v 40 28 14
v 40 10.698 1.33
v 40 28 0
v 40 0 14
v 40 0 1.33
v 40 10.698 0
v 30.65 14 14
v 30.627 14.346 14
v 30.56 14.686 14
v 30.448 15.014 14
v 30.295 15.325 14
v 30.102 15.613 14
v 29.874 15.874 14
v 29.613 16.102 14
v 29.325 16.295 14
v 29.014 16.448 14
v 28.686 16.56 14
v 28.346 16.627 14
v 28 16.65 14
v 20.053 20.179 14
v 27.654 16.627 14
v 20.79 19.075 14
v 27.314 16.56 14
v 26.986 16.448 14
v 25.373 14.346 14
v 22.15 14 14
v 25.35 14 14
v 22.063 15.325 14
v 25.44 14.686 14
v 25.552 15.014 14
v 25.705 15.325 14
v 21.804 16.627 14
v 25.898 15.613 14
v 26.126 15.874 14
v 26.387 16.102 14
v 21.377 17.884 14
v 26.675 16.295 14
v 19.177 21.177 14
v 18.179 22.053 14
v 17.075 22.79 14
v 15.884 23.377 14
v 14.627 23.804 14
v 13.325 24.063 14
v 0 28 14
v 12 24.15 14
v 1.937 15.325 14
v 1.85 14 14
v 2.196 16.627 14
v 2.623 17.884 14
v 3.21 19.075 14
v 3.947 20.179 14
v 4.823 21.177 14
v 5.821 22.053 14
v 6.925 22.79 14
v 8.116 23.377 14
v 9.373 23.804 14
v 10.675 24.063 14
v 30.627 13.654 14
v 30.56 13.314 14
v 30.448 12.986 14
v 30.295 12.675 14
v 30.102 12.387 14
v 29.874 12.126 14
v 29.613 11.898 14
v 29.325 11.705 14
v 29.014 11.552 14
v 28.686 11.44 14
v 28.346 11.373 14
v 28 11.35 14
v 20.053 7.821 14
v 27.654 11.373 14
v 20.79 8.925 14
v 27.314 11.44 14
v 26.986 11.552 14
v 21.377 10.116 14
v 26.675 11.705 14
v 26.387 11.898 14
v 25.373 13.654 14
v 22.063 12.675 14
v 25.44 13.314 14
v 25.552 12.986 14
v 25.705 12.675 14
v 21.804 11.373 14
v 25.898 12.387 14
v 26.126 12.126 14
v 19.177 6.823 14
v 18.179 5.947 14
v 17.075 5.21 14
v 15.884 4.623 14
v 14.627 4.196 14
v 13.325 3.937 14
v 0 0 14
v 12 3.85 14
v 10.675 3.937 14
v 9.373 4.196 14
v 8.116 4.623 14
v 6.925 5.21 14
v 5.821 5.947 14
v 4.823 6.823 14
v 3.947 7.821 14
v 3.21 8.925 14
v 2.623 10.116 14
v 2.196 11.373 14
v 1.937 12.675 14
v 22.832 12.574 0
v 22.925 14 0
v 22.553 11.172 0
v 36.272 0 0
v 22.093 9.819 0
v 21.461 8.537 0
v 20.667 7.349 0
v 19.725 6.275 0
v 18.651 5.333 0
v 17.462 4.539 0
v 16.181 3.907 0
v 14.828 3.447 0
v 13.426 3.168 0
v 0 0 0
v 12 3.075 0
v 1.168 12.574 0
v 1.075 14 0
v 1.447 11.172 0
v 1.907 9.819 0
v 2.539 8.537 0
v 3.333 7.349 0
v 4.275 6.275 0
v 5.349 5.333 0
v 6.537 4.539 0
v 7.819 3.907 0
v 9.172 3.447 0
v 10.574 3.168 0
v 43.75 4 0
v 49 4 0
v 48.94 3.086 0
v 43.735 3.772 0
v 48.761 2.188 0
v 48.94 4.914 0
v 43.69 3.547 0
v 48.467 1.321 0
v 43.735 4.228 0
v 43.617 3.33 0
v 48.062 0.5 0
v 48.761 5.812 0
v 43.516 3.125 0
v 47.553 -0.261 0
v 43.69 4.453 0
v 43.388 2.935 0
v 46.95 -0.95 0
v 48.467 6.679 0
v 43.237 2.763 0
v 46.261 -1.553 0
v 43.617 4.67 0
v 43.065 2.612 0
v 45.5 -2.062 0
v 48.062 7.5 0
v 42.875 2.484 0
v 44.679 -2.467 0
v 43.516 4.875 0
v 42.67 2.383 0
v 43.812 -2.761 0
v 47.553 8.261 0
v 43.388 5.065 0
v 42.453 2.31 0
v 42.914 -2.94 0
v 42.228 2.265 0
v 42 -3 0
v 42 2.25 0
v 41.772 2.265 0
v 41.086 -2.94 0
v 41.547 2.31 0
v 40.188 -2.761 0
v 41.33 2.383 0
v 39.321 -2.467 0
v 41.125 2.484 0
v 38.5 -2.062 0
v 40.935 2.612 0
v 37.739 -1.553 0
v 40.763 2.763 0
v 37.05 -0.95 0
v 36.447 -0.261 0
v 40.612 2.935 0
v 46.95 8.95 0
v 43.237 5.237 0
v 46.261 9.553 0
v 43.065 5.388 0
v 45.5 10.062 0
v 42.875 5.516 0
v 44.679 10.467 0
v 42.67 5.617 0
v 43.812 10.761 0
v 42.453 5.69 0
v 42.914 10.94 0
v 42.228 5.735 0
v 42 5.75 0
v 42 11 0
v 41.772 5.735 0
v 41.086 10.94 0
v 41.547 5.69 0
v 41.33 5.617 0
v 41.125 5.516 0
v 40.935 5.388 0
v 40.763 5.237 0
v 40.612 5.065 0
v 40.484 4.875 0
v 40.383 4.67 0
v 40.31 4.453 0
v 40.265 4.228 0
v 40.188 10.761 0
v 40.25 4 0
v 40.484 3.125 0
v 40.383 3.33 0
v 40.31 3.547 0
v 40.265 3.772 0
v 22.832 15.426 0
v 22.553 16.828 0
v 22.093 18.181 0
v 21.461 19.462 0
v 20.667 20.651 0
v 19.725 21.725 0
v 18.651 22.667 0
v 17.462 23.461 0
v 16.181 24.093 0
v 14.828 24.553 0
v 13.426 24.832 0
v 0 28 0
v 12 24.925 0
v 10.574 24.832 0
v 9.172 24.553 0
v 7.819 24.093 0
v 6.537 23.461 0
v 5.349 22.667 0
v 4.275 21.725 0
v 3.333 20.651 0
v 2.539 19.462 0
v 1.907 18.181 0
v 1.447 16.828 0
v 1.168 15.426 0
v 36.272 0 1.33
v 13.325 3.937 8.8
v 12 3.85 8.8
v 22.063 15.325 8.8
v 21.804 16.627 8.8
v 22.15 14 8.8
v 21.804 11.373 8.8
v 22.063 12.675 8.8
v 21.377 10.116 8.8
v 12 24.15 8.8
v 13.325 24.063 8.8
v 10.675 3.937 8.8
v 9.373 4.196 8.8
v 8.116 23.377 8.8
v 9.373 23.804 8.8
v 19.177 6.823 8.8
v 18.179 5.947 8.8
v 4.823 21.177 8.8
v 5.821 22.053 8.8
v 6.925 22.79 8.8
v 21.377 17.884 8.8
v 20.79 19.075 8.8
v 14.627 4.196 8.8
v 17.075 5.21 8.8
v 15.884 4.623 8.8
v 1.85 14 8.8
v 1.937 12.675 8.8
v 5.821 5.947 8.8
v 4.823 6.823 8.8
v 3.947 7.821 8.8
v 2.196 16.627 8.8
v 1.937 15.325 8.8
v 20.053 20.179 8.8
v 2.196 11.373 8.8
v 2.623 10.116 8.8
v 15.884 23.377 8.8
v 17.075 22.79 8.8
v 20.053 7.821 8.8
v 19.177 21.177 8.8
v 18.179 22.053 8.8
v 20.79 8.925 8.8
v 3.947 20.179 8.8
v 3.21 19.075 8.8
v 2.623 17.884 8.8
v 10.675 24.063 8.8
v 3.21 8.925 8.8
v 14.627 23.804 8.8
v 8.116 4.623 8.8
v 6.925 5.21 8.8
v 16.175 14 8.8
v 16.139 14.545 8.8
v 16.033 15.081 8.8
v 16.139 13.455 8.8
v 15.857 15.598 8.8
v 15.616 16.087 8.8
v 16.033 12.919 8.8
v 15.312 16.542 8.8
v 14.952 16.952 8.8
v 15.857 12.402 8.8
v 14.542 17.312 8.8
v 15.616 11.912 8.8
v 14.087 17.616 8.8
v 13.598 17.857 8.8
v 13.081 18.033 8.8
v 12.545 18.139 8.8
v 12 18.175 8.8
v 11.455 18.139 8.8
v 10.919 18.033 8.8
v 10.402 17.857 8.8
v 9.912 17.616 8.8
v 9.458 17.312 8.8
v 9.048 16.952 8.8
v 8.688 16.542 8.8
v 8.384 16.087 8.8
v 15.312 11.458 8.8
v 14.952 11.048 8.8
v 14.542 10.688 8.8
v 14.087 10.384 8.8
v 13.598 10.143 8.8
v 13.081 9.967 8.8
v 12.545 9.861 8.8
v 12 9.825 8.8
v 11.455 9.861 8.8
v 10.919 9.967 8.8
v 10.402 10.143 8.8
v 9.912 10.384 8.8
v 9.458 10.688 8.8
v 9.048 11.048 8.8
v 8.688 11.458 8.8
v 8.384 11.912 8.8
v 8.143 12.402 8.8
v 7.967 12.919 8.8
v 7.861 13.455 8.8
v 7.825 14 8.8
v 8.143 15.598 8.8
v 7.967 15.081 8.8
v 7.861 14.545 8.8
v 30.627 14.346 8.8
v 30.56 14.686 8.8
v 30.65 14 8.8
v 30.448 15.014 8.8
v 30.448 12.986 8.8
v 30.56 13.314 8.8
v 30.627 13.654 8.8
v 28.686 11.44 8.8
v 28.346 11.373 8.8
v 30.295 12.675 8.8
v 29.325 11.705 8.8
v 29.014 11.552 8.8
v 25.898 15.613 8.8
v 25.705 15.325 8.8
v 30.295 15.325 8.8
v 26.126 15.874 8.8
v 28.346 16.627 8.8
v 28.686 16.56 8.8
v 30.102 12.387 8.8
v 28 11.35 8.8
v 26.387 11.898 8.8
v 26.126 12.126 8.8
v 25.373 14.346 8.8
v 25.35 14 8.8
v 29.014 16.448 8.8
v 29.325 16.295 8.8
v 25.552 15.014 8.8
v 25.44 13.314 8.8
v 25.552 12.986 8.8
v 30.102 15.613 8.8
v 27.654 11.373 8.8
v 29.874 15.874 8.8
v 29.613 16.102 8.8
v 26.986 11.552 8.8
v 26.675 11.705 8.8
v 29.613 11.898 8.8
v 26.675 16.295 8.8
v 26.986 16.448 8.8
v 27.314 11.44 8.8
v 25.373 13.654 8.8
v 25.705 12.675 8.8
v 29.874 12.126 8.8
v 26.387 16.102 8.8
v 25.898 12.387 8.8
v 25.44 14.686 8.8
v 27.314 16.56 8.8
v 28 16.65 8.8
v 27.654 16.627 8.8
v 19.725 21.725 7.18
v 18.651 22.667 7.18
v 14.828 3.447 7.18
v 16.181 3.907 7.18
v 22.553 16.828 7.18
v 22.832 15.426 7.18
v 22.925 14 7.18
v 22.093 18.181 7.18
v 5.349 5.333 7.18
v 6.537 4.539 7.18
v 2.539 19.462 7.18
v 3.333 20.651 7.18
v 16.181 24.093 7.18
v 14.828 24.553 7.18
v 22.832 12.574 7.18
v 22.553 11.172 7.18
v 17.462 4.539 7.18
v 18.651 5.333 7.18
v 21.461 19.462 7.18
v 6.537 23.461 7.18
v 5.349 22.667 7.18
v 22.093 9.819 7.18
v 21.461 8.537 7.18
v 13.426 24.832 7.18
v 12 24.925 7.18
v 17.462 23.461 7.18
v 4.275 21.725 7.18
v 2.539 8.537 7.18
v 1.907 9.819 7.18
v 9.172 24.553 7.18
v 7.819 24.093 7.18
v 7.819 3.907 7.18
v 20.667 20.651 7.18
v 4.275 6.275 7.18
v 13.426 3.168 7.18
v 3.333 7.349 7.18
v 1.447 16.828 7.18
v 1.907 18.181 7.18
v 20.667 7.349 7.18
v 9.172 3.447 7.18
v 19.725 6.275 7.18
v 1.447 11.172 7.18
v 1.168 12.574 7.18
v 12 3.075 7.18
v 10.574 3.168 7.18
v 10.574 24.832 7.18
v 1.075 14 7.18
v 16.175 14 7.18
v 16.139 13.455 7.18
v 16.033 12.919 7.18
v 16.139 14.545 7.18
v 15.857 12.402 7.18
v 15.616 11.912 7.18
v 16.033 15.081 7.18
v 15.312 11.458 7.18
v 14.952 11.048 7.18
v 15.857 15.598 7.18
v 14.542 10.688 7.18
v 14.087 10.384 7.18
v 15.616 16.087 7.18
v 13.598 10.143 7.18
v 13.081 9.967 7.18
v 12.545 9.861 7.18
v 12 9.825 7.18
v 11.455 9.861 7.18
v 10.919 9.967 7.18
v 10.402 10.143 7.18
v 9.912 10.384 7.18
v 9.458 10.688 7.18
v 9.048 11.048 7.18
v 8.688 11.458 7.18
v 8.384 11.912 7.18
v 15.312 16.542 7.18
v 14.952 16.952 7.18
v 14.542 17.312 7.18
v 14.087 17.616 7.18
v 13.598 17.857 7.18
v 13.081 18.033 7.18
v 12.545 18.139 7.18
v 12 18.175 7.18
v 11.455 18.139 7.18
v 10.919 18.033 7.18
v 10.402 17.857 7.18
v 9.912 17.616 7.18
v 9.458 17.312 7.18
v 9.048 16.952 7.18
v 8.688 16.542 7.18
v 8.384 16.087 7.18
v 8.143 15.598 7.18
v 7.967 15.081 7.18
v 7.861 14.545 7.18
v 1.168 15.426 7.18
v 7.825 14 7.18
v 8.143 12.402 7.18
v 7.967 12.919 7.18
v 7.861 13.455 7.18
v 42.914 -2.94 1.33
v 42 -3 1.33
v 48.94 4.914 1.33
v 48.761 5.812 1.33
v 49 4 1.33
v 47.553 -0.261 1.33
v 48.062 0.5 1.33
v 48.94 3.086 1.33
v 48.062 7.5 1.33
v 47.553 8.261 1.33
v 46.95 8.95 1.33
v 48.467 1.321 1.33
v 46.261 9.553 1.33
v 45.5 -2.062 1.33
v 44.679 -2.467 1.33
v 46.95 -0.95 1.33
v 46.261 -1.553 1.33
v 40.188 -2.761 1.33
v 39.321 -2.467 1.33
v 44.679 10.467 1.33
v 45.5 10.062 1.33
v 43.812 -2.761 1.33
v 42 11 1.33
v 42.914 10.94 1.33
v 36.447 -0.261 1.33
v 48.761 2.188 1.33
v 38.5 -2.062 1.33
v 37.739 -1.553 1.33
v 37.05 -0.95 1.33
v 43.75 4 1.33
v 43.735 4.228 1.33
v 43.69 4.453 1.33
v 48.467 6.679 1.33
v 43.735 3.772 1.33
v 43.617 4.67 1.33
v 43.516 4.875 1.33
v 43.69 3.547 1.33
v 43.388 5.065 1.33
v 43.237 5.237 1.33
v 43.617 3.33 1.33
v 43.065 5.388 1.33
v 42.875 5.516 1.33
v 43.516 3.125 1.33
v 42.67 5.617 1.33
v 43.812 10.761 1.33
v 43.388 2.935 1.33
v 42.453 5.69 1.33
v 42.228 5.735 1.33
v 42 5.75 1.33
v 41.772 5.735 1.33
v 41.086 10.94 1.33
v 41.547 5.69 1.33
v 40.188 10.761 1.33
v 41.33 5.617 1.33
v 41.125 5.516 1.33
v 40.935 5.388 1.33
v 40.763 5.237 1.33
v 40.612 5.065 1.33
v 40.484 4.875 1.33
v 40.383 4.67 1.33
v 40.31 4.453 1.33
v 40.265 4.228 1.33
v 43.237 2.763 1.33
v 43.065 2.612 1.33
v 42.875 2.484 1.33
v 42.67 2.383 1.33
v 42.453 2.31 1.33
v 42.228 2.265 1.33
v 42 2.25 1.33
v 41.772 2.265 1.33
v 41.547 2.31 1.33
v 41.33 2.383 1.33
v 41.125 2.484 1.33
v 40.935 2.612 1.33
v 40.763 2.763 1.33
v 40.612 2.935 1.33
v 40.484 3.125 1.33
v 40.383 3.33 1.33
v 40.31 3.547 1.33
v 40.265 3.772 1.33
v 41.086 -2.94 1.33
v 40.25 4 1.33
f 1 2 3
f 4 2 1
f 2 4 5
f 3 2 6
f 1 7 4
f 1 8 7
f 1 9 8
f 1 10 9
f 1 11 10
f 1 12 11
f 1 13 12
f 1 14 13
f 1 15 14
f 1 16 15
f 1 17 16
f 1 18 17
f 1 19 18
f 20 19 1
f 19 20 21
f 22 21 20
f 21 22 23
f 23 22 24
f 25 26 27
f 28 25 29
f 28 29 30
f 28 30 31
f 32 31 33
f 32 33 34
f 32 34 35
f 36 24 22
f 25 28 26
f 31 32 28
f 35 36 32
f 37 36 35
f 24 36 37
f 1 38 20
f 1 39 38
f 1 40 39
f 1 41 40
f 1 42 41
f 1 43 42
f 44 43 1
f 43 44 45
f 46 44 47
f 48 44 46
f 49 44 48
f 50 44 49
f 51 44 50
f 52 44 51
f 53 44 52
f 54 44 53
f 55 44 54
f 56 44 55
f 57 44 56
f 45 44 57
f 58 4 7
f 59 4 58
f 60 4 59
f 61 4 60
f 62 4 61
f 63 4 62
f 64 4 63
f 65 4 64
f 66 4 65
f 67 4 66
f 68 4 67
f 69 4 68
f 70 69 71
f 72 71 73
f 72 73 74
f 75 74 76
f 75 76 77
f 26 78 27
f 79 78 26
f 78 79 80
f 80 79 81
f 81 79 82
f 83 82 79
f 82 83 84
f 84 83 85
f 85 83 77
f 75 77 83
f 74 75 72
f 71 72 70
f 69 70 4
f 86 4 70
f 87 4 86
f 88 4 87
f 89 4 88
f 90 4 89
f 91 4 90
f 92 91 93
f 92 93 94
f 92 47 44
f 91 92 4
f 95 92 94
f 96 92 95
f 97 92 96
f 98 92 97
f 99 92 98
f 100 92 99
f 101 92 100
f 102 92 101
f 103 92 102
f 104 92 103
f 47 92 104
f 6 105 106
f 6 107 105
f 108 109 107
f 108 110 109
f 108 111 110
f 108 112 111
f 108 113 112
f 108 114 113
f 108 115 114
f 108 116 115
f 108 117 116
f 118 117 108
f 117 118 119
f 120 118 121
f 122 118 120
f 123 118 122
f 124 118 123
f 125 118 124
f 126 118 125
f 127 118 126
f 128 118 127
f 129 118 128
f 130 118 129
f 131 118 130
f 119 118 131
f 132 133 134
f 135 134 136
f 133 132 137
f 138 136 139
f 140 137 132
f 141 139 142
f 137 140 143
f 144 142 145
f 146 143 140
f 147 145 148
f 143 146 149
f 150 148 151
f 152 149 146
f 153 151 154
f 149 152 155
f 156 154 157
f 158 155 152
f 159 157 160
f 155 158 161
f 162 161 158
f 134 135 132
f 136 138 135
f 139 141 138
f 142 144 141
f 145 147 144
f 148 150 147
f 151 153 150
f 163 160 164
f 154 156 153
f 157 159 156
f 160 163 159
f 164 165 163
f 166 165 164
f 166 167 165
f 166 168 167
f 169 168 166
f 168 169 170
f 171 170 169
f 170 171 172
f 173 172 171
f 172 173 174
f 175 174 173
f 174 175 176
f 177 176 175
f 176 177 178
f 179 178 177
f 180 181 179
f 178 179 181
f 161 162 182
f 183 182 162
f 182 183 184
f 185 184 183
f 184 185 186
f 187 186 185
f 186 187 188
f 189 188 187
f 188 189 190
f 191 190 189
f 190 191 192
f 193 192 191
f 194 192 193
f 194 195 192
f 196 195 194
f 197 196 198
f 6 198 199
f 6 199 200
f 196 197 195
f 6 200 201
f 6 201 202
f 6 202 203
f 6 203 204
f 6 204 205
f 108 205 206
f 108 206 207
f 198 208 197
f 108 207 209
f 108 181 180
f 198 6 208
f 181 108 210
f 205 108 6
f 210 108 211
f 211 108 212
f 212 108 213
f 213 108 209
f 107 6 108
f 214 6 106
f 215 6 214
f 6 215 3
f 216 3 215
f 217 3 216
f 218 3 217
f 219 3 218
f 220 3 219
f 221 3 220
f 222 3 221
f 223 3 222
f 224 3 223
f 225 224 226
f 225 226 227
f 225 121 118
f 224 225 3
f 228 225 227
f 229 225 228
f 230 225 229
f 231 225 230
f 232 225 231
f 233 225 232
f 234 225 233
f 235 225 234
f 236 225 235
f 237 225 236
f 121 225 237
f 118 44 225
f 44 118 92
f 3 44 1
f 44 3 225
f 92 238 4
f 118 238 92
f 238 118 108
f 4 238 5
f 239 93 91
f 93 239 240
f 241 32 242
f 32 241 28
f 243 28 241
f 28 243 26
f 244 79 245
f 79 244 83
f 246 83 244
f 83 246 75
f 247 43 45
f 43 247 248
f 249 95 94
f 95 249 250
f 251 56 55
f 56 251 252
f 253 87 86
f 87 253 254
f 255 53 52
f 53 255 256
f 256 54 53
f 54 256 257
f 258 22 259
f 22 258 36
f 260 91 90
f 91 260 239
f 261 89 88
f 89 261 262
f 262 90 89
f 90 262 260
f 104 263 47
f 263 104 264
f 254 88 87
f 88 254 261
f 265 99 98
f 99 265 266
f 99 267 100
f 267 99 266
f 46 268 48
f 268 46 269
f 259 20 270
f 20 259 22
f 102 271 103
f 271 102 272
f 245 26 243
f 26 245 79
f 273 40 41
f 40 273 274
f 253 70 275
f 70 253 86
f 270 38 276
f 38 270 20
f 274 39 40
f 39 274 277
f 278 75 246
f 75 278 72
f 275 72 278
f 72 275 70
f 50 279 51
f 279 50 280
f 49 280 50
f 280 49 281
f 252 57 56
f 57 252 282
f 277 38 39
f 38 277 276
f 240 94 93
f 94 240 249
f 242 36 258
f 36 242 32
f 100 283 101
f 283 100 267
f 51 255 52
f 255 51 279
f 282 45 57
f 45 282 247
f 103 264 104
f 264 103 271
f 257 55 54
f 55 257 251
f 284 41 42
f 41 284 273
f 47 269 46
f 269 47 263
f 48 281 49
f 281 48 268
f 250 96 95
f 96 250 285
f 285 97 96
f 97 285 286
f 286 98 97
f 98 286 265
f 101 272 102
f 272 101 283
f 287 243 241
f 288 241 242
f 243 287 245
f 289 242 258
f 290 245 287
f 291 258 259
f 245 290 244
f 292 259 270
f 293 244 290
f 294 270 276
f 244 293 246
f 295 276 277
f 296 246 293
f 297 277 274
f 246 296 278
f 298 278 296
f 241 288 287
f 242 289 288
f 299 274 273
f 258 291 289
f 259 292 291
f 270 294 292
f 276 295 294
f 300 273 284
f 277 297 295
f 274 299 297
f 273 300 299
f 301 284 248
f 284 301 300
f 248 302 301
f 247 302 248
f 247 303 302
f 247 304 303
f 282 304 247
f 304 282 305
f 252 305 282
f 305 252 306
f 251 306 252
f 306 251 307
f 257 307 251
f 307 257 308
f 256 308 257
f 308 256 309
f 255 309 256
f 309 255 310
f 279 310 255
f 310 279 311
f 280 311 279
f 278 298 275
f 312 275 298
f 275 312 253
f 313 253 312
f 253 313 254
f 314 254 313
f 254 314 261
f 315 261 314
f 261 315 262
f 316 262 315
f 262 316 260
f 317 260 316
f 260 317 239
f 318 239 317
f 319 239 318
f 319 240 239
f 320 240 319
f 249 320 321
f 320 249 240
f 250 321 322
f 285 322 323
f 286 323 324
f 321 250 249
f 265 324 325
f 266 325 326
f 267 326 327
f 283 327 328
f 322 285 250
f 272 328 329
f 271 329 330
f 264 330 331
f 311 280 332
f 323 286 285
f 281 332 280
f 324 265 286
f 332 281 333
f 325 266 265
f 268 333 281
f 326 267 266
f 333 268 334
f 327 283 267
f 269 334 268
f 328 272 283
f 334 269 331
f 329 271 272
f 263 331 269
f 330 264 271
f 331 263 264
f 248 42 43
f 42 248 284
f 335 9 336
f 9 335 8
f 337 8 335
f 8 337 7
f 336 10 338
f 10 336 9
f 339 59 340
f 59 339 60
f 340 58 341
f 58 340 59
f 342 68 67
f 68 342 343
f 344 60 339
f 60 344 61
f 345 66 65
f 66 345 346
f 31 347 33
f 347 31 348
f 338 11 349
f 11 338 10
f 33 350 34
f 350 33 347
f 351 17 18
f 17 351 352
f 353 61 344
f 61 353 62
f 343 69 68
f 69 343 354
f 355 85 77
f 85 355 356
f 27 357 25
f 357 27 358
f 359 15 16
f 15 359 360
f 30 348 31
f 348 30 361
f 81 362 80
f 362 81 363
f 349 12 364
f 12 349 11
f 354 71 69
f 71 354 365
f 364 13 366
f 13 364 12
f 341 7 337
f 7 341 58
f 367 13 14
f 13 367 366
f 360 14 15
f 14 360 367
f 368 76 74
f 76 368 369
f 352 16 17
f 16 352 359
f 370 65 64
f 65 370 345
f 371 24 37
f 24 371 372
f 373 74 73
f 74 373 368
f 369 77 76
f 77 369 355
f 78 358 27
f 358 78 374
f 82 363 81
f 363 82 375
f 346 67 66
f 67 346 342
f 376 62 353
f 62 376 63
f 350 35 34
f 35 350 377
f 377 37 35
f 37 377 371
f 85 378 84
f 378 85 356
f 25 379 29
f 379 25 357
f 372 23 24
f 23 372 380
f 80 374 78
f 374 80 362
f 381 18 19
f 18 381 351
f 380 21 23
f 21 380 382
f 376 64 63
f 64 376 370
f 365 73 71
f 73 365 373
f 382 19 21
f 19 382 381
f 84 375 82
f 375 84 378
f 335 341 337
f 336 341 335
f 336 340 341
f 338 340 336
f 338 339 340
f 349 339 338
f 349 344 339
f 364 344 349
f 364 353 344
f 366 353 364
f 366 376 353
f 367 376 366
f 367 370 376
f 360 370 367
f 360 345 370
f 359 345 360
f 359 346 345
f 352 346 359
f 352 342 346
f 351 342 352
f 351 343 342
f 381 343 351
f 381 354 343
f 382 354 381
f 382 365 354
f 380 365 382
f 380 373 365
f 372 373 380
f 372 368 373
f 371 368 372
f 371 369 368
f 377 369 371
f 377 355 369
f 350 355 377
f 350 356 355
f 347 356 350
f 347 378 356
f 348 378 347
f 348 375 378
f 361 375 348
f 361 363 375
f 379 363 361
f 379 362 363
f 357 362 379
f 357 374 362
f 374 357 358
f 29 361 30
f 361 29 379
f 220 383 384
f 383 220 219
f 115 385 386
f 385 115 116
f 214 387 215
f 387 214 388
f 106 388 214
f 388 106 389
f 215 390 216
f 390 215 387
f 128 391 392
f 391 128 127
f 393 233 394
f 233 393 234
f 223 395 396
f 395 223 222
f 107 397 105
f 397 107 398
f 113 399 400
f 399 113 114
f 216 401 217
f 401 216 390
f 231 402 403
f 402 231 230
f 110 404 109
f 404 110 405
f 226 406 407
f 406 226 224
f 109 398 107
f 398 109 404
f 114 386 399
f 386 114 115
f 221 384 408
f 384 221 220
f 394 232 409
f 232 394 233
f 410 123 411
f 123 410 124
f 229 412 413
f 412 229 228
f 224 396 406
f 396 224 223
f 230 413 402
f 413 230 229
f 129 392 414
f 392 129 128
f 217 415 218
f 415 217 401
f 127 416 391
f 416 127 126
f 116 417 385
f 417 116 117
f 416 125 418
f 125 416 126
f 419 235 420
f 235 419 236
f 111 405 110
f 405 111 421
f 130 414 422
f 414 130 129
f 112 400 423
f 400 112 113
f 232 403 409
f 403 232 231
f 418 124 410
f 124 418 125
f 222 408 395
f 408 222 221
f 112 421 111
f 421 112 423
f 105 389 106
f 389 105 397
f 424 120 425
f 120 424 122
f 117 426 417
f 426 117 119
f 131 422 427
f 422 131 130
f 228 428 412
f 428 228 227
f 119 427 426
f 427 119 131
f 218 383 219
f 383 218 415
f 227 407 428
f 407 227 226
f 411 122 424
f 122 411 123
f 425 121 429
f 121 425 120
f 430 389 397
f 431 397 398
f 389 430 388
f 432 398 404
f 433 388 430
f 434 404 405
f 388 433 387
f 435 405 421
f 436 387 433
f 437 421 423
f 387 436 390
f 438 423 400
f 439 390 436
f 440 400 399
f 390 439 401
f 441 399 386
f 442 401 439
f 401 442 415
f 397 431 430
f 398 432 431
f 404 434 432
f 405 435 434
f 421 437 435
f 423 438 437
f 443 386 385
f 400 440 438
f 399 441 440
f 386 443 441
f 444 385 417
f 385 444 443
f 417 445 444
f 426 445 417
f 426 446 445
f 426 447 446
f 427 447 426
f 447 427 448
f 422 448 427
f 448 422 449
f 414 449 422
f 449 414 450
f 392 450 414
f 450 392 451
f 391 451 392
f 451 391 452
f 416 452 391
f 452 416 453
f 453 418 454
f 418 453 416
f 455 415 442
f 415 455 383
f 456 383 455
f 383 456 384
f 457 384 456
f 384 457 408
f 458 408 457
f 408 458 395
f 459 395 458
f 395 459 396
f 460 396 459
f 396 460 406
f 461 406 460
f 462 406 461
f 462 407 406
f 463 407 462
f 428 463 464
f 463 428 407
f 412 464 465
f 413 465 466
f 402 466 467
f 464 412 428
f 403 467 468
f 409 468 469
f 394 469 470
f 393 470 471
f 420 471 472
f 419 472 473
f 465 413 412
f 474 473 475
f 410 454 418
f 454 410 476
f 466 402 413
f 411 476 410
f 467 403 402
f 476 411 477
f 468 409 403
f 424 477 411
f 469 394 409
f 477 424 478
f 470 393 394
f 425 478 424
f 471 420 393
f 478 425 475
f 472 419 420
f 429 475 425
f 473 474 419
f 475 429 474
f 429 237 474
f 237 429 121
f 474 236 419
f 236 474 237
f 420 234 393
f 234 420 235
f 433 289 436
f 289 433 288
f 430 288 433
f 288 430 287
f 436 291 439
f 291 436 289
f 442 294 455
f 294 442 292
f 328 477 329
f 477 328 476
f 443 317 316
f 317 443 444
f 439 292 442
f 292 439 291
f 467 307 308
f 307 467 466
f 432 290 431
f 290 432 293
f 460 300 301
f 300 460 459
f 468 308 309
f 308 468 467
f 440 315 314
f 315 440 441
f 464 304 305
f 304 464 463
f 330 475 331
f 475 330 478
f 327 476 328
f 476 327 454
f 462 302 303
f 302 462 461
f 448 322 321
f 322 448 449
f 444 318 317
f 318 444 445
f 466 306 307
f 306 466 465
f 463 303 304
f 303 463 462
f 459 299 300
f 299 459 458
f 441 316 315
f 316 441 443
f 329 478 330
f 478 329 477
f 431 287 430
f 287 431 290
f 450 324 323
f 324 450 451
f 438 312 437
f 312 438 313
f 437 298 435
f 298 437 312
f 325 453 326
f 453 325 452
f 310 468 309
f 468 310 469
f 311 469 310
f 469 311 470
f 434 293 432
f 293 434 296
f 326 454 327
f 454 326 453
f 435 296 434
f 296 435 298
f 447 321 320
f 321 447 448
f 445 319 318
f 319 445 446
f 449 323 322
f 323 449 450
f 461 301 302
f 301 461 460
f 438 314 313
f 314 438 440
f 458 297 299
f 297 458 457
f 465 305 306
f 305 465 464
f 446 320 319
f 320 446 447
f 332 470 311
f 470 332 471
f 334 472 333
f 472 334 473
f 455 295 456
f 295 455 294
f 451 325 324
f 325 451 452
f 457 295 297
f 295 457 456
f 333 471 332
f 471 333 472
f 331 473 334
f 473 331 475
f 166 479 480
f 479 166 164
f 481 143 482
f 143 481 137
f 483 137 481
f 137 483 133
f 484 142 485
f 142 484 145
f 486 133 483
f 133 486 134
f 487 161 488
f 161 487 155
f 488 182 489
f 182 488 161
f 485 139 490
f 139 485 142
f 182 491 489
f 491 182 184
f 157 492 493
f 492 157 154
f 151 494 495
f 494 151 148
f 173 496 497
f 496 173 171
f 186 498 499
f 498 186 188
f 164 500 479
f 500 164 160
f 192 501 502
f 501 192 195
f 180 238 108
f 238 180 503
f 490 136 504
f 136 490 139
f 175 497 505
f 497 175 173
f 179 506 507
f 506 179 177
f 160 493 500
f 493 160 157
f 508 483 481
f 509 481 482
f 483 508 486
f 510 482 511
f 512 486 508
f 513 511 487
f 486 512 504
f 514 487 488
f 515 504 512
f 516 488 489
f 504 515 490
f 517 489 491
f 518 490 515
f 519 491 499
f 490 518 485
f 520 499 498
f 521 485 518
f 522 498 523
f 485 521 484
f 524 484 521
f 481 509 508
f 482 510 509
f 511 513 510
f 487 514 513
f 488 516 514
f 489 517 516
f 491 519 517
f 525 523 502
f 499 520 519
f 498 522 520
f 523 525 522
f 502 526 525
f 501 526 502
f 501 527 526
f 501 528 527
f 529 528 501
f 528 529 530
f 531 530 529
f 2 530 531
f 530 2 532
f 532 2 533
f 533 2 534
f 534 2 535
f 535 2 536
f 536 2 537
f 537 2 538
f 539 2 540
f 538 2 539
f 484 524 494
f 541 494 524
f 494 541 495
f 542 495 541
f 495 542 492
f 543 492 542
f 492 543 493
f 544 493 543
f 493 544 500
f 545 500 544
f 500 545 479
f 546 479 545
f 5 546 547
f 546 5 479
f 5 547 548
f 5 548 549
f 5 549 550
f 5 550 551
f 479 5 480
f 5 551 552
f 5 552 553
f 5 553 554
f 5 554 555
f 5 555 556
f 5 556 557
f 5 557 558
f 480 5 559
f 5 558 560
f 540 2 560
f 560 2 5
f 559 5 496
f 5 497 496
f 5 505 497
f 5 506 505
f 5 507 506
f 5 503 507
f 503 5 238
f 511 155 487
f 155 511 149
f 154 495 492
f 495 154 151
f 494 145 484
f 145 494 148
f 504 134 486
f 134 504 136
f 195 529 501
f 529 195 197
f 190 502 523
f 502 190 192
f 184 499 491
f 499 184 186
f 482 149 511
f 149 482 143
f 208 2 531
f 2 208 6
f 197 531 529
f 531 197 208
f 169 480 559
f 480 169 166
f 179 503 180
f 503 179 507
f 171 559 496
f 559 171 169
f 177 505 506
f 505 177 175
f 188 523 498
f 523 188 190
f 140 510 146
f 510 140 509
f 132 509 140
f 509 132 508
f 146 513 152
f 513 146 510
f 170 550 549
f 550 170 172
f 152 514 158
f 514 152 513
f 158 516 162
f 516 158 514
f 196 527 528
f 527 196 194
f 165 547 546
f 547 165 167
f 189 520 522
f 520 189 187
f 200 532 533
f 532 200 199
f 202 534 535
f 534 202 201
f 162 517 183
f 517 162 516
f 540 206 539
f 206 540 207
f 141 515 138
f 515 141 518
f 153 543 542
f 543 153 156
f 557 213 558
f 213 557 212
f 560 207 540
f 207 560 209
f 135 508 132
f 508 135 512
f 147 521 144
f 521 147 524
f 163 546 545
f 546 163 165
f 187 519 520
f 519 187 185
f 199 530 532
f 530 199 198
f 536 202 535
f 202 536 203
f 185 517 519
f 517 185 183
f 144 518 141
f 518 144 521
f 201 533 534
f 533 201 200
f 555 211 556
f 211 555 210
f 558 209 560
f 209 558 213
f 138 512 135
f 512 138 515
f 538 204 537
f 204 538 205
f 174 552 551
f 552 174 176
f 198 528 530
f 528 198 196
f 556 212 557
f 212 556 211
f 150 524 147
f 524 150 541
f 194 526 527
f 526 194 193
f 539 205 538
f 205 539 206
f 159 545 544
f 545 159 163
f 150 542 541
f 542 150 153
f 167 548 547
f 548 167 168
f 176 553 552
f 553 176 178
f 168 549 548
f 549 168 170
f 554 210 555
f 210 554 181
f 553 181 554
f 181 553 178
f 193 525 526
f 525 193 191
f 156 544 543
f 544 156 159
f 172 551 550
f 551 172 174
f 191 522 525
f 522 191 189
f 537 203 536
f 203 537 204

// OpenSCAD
// file: parameters.scad
// =============================================================================
// Gen-V Dual-rotor NANO-GAP AFPM — WOUND-AWARE parameters (HARD GATE)
// PRIMARY challenger vs Gen-S. Thinner m2m + more copper (140 t).
// =============================================================================

// --- Wire / wind budget (26 AWG, ~1 lb spool ≈ 390 m bare-equiv) --------------
wire_awg            = 26;
wire_od             = 0.45;     // insulated OD mm
turns               = 140;      // +10 vs Gen-S
fill                = 0.70;
layers_per_face     = 2;        // axial layers proud of EACH flange
wind_build_axial    = layers_per_face * wire_od * fill;   // 0.63 mm
wind_build_radial   = 3 * wire_od * fill;                 // 0.945 mm

// --- Pancake former (bare STL) — thinner web/flange than Gen-S ---------------
coil_id_r           = 23.0;     // larger window vs Gen-S 24–56
coil_od_r           = 58.0;
span_deg            = 26.0;     // 12 stations × 30° pitch
former_web          = 2.0;
flange_t            = 0.75;
wall                = 1.2;
slot_w              = 2.4;
mount_hole          = 3.5;
tab_len             = 7.0;

former_bare_h       = former_web + 2 * flange_t;            // 3.5 mm
coil_envelope_h     = former_bare_h + 2 * wind_build_axial; // 4.76 mm

// --- Running clearance (magnet face → WOUND face) EACH side ------------------
run_clear           = 0.70;     // PASS ≥ 0.70 (prefer ≥0.70)
gap_spacer_h        = run_clear + wind_build_axial;         // 1.33 mm
m2m                 = coil_envelope_h + 2 * run_clear;      // 6.16 mm (beats Gen-S 6.66)

// --- Mid stator (12 pancakes 3φ; winds proud both faces) ---------------------
coil_stations       = 12;
bay_r_in            = coil_id_r - 2.0 - wind_build_radial;
bay_r_out           = coil_od_r + 2.0 + wind_build_radial;
bay_span            = span_deg + 4.0;
bay_offset          = 2.0;
stator_thick        = former_bare_h;                        // winds proud ±Z
stator_od           = 156.0;
shaft_clear_stator  = 36.0;
coil_mount_r        = 28.0;

// --- Rotors (×2) — 8×Ø20 + 24×Ø5 Halbach each face ---------------------------
large_pocket_d      = 20.3;
small_pocket_d      = 5.3;
pocket_h            = 5.2;
large_n             = 8;
R_large             = 52.0;
R_small_inner       = 40.0;
R_small_mid         = 52.0;
R_small_outer       = 64.0;
carrier_od          = 152.0;
carrier_thick       = 7.5;
hub_h               = 10.0;
hub_od              = 30.0;
rotor_b_offset_deg  = 22.5;

// --- Modular MAX interface (Gen-E family) ------------------------------------
shaft_bore          = 8.35;
bearing_d           = 21.85;
bearing_h           = 7.2;
m3_clear            = 3.5;
bolt_r_inner        = 36.0;
bolt_n_inner        = 6;
flange_bolt_r       = 72.0;
flange_bolt_n       = 6;
brace_r             = 68.0;
brace_d             = 4.3;
brace_n             = 4;

spacer_pad_od       = 14.0;
spacer_pad_id       = m3_clear;
endbell_od          = 156.0;
endbell_thick       = 8.0;
endbell_shaft_clear = 10.0;

$fn = 64;
// main file
// Gen-V fit coupon — magnet pockets + 608 + spacer height
include <parameters.scad>;
$fn = 48;
block_w = 40; block_d = 28; block_h = 14;
difference() {
    cube([block_w, block_d, block_h]);
    translate([12, block_d/2, block_h - pocket_h])
        cylinder(d=large_pocket_d, h=pocket_h + 0.2);
    translate([28, block_d/2, block_h - pocket_h])
        cylinder(d=small_pocket_d, h=pocket_h + 0.2);
    translate([12, block_d/2, -0.02])
        cylinder(d=bearing_d, h=bearing_h);
    translate([12, block_d/2, -0.1])
        cylinder(d=shaft_bore, h=block_h + 1);
}
translate([block_w + 2, 4, 0])
    difference() {
        cylinder(d=spacer_pad_od, h=gap_spacer_h);
        translate([0, 0, -0.1]) cylinder(d=spacer_pad_id, h=gap_spacer_h + 0.2);
    }
